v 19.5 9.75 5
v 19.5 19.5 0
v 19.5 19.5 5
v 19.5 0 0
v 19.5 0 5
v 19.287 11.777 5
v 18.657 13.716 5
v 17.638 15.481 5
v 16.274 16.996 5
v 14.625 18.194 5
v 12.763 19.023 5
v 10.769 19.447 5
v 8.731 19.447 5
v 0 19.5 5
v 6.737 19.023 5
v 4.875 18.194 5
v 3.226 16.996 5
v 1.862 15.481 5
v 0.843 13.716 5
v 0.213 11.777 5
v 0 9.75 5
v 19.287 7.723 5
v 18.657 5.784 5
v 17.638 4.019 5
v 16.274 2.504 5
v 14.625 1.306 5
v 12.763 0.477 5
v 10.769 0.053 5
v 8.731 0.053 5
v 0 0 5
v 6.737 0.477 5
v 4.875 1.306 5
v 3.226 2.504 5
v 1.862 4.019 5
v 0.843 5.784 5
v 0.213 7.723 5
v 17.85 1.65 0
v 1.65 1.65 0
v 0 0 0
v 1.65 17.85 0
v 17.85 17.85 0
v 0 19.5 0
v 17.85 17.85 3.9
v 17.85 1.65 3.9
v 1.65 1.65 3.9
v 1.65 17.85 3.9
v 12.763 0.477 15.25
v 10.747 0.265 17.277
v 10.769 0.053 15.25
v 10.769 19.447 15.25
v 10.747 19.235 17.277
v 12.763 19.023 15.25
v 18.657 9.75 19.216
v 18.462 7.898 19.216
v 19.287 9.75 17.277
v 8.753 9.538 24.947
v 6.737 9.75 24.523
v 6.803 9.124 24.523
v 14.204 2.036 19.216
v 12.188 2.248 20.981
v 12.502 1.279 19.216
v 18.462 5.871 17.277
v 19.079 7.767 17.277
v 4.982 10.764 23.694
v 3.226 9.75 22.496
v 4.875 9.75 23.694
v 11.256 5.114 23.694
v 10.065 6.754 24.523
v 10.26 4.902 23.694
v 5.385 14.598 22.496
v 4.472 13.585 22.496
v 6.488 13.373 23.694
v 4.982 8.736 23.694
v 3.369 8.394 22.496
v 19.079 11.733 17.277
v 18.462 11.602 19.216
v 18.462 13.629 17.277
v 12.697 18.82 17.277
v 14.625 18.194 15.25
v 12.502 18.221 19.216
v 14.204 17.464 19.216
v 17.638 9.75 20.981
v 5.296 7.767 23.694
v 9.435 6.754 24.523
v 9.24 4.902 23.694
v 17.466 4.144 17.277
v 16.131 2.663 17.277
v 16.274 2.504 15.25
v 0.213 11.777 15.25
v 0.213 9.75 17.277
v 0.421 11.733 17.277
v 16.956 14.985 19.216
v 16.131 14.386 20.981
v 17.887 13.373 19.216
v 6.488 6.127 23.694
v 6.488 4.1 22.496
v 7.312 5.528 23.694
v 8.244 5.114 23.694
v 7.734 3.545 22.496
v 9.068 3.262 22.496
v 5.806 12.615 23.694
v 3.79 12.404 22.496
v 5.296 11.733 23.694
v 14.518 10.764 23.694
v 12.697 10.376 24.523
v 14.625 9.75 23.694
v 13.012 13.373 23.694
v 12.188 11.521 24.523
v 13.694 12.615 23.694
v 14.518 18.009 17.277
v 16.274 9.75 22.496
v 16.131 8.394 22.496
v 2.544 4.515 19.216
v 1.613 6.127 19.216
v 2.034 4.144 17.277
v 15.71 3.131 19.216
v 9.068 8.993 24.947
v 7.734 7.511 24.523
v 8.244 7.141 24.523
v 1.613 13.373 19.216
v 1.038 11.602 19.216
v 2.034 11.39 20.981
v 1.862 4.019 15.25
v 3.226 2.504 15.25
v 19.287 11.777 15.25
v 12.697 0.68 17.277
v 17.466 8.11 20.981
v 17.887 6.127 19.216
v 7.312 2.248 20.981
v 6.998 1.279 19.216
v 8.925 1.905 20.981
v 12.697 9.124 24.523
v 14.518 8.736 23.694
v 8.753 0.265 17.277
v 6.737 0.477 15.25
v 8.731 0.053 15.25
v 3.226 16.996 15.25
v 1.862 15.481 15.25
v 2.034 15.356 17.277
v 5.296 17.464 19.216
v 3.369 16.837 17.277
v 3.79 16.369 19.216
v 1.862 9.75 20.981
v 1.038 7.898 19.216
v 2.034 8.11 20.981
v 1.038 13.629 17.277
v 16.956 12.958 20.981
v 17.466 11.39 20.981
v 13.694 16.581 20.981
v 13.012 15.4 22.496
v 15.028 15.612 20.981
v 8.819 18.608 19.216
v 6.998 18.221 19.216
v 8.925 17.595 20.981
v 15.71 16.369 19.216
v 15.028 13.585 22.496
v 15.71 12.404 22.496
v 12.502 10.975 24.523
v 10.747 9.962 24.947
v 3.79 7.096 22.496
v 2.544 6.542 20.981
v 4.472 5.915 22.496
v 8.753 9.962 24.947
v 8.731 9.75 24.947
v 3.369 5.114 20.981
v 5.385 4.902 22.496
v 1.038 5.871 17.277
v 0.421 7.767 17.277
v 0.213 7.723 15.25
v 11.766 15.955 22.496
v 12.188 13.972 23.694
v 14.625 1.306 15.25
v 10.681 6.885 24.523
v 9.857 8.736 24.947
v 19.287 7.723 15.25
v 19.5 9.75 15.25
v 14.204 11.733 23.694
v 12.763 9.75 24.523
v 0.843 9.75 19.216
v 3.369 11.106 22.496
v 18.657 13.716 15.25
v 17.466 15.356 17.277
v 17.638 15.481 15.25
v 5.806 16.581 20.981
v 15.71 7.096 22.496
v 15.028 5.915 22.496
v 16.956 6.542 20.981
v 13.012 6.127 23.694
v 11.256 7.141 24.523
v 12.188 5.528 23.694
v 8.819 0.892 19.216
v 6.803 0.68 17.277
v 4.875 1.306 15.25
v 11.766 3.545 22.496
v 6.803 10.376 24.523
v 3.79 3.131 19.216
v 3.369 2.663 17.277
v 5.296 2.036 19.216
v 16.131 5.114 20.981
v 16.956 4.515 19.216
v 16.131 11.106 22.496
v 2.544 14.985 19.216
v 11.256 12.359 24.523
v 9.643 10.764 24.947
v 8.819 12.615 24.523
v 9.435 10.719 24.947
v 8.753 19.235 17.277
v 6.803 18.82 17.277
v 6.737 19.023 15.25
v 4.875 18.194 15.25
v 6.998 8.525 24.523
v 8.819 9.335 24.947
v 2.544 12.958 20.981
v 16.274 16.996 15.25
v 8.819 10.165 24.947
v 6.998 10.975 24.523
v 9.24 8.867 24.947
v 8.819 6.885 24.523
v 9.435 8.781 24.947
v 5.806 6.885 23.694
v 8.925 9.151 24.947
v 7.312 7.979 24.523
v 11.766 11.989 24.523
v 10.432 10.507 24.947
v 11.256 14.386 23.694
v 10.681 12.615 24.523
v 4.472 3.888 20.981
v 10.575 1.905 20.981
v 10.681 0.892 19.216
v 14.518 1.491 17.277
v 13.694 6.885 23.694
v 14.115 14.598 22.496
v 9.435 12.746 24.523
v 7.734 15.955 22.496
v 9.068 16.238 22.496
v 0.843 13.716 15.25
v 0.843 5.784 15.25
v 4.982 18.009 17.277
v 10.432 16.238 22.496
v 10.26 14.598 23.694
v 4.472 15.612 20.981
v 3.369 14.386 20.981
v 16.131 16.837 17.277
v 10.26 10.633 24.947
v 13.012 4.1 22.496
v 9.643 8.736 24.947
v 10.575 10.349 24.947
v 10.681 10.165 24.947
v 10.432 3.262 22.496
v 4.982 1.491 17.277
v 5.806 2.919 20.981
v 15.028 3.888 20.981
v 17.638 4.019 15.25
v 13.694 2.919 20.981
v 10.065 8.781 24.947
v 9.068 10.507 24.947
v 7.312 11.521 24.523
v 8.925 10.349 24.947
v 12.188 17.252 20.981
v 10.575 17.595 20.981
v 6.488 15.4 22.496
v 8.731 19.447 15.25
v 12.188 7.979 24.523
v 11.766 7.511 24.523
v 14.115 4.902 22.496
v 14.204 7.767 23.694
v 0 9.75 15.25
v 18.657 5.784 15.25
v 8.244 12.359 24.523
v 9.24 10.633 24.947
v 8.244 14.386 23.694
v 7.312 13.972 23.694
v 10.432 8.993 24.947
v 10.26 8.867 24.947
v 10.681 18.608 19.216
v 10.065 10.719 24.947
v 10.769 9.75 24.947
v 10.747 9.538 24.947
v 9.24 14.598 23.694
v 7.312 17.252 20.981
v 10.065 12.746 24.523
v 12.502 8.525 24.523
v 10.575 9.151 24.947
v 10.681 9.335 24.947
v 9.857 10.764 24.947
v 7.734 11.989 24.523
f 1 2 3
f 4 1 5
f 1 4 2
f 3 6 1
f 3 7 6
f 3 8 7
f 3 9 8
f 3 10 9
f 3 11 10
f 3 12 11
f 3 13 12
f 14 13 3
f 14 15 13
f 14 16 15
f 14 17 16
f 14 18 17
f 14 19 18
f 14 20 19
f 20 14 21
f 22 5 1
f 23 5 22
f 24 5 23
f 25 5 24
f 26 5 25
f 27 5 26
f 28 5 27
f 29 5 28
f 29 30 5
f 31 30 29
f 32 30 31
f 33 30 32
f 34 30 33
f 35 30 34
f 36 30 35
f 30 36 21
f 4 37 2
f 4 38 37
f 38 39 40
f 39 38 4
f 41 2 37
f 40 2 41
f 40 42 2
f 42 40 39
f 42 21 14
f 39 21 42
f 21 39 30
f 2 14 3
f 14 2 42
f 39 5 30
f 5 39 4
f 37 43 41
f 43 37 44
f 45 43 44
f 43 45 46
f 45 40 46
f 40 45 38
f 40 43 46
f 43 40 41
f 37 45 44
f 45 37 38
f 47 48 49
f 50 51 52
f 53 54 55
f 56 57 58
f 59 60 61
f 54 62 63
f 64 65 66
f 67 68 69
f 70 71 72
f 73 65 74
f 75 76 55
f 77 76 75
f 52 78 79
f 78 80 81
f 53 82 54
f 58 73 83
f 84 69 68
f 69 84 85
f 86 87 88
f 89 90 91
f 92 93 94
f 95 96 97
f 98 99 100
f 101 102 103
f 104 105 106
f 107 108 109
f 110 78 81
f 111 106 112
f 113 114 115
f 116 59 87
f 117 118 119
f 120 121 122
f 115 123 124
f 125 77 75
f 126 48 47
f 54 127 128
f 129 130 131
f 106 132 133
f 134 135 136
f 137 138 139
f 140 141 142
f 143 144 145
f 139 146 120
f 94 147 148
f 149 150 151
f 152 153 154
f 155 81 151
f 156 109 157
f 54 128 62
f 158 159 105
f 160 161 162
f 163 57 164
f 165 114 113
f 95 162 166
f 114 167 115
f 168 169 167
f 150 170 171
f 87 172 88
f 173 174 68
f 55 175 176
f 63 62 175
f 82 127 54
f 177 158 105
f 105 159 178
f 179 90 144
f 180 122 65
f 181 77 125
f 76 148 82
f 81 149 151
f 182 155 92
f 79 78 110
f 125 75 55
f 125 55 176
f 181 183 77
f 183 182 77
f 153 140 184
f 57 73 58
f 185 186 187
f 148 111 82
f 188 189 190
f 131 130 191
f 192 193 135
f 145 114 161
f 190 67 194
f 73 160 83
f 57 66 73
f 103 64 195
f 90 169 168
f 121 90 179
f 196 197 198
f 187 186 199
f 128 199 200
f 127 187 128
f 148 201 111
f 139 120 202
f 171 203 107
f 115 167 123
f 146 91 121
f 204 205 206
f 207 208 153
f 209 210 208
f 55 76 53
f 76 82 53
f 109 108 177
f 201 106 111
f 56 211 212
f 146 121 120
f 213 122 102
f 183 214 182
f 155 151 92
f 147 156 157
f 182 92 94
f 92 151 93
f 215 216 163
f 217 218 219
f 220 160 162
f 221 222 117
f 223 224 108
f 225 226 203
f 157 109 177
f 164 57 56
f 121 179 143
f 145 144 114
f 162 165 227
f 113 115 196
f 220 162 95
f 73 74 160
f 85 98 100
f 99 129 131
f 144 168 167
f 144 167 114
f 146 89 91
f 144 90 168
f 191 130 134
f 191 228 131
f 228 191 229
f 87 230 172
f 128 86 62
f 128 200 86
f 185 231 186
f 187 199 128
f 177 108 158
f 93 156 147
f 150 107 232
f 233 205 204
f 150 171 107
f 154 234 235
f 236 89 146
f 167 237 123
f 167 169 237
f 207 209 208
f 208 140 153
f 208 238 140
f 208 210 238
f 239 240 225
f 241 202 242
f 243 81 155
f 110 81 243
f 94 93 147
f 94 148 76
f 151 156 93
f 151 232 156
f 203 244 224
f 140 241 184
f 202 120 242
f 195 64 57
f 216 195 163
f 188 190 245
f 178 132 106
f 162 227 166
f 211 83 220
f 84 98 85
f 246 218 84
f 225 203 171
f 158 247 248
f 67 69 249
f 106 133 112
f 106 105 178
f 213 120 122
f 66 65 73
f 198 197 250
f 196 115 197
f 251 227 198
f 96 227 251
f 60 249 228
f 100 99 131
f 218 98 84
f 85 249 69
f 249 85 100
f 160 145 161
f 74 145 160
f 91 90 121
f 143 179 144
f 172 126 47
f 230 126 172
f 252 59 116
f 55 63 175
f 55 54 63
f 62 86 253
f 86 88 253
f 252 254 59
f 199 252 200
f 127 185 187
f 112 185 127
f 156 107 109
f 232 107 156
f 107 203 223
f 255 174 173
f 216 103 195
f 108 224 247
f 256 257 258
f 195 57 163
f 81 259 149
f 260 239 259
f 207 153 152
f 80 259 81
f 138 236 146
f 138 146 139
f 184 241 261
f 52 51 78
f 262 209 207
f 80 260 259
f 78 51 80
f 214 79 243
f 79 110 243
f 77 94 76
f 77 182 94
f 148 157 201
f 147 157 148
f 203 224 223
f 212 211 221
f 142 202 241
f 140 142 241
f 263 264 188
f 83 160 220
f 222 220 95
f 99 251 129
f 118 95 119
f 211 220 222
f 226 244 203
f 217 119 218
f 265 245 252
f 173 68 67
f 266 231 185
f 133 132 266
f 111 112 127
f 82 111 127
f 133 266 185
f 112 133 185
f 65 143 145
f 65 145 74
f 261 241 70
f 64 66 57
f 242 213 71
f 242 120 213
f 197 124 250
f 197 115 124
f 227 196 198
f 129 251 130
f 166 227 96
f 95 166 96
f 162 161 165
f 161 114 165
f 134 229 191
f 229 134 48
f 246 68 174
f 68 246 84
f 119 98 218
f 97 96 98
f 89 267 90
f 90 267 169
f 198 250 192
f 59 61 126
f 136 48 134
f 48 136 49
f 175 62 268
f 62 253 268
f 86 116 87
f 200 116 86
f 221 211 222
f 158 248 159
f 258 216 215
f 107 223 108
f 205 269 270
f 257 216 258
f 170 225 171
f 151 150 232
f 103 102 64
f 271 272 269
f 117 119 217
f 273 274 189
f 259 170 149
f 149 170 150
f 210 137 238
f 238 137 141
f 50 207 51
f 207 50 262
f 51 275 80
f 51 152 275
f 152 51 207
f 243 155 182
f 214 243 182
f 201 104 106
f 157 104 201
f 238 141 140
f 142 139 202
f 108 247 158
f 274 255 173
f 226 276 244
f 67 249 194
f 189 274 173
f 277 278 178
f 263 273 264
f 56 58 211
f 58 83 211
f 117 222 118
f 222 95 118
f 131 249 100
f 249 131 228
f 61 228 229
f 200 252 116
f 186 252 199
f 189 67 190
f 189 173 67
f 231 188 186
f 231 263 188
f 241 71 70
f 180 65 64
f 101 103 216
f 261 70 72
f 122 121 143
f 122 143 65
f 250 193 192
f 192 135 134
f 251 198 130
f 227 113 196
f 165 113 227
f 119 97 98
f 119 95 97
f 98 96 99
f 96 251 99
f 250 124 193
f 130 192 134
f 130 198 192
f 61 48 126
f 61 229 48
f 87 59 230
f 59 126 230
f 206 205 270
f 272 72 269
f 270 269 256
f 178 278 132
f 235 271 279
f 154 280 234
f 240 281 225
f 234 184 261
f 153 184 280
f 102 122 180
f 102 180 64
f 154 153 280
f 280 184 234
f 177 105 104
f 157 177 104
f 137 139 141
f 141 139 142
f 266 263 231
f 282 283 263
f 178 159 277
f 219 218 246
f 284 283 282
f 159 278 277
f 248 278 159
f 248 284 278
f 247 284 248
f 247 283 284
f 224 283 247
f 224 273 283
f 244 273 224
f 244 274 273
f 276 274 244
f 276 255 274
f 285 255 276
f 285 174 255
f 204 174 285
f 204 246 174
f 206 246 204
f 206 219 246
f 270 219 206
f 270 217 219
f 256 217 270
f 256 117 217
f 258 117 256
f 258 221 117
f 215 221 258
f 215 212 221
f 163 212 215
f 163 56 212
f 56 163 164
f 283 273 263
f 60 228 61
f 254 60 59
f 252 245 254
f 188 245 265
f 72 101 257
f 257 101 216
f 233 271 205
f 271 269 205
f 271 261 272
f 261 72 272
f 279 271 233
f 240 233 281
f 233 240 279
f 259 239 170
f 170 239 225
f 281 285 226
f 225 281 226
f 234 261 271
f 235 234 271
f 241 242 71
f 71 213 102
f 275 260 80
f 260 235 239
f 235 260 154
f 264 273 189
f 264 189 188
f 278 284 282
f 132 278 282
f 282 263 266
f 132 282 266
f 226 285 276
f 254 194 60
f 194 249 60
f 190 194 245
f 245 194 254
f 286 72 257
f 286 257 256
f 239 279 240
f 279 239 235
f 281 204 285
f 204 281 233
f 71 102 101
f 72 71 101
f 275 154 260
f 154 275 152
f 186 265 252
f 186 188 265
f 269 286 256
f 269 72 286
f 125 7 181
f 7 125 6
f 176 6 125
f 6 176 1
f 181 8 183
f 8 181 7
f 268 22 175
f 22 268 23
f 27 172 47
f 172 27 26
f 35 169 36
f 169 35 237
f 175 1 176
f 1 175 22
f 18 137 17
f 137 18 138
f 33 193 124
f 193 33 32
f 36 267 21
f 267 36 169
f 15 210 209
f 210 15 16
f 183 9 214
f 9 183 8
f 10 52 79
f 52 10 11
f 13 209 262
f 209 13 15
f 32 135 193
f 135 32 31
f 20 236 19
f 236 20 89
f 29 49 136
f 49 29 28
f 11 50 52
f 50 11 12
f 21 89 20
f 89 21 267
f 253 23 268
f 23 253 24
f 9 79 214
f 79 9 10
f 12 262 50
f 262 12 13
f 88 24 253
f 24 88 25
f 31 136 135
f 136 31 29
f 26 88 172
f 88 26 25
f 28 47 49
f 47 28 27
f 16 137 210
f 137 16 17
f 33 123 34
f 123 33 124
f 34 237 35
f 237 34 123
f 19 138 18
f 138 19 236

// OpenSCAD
// file: CommonModules.scad
//    $$$$$$\   $$$$$$\   $$$$$$\  $$\   $$\ $$$$$$\ $$$$$$$\  $$$$$$$$\ 
//    $$  __$$\ $$  __$$\ $$  __$$\ $$ |  $$ |\_$$  _|$$  __$$\ $$  _____|
//    $$ /  $$ |$$ /  \__|$$ /  $$ |$$ |  $$ |  $$ |  $$ |  $$ |$$ |      
//    $$$$$$$$ |$$ |      $$ |  $$ |$$ |  $$ |  $$ |  $$$$$$$  |$$$$$\    
//    $$  __$$ |$$ |      $$ |  $$ |$$ |  $$ |  $$ |  $$  __$$< $$  __|   
//    $$ |  $$ |$$ |  $$\ $$ $$\$$ |$$ |  $$ |  $$ |  $$ |  $$ |$$ |      
//    $$ |  $$ |\$$$$$$  |\$$$$$$ / \$$$$$$  |$$$$$$\ $$ |  $$ |$$$$$$$$\ 
//    \__|  \__| \______/  \___$$$\  \______/ \______|\__|  \__|\________|
//                            \___|                                      
//      
//       Print and play - OpenScad project - by Bekkalizer - GPLv3
// 
// This file is part of the Acquire stl project.
// Copyright (C) 2025 Bekkalizer
//
// Acquire stl project is free software: you can redistribute it and/or modify
// it under the terms of the GNU General Public License as published
// by the Free Software Foundation, either version 3 of the License,
// or (at your option) any later version.
//
// Acquire stl project is distributed in the hope that it will be useful,
// but WITHOUT ANY WARRANTY; without even the implied warranty of
// MERCHANTABILITY or FITNESS FOR A PARTICULAR PURPOSE. See the
// GNU General Public License for more details.
//
// You should have received a copy of the GNU General Public License
// along with this program. If not, see <https://www.gnu.org/licenses/>.

module cube_with_extruded_bottom( cube_size = [19.5, 19.5, 5] ) {
    //Main build script parameters:
    max_width = 19.2;
    top_lip = 2;
    top_height = 3;
    //Calculated hole size:
    inside_margins = 1;
    hole_width = max_width - 2 * (top_lip) + inside_margins;
    hole_height = top_height + inside_margins;
    
    hole_size = [hole_width, hole_width, hole_height]; // Hole dimensions (same height as cube)
    hole_offset = [(cube_size[0] - hole_size[0]) / 2, (cube_size[1] - hole_size[1]) / 2, -0.1]; // Centered on bottom
    difference() {
        // Main Cube
        cube(cube_size);
        
        // Hole Cube (subtracting from bottom)
        translate(hole_offset)
            cube(hole_size);
    }
}
// main file
//    $$$$$$\   $$$$$$\   $$$$$$\  $$\   $$\ $$$$$$\ $$$$$$$\  $$$$$$$$\ 
//    $$  __$$\ $$  __$$\ $$  __$$\ $$ |  $$ |\_$$  _|$$  __$$\ $$  _____|
//    $$ /  $$ |$$ /  \__|$$ /  $$ |$$ |  $$ |  $$ |  $$ |  $$ |$$ |      
//    $$$$$$$$ |$$ |      $$ |  $$ |$$ |  $$ |  $$ |  $$$$$$$  |$$$$$\    
//    $$  __$$ |$$ |      $$ |  $$ |$$ |  $$ |  $$ |  $$  __$$< $$  __|   
//    $$ |  $$ |$$ |  $$\ $$ $$\$$ |$$ |  $$ |  $$ |  $$ |  $$ |$$ |      
//    $$ |  $$ |\$$$$$$  |\$$$$$$ / \$$$$$$  |$$$$$$\ $$ |  $$ |$$$$$$$$\ 
//    \__|  \__| \______/  \___$$$\  \______/ \______|\__|  \__|\________|
//                            \___|                                      
//      
//       Print and play - OpenScad project - by Bekkalizer - GPLv3
// 
// This file is part of the Acquire stl project.
// Copyright (C) 2025 Bekkalizer
//
// Acquire stl project is free software: you can redistribute it and/or modify
// it under the terms of the GNU General Public License as published
// by the Free Software Foundation, either version 3 of the License,
// or (at your option) any later version.
//
// Acquire stl project is distributed in the hope that it will be useful,
// but WITHOUT ANY WARRANTY; without even the implied warranty of
// MERCHANTABILITY or FITNESS FOR A PARTICULAR PURPOSE. See the
// GNU General Public License for more details.
//
// You should have received a copy of the GNU General Public License
// along with this program. If not, see <https://www.gnu.org/licenses/>.

use <CommonModules.scad>

// ============== Parameters ==============
dome_height = 25;

// Parameters
bottom_width = 19.5;
bottom_height = 5;

dome_radius = bottom_width/2;

union () {
    cube_with_extruded_bottom([bottom_width, bottom_width, bottom_height]);

    translate([dome_radius,dome_radius,dome_height-dome_radius])
        sphere(dome_radius);
    translate([dome_radius,dome_radius,bottom_height])
        cylinder(h = (dome_height-dome_radius-bottom_height),r = dome_radius, center = false);
}
